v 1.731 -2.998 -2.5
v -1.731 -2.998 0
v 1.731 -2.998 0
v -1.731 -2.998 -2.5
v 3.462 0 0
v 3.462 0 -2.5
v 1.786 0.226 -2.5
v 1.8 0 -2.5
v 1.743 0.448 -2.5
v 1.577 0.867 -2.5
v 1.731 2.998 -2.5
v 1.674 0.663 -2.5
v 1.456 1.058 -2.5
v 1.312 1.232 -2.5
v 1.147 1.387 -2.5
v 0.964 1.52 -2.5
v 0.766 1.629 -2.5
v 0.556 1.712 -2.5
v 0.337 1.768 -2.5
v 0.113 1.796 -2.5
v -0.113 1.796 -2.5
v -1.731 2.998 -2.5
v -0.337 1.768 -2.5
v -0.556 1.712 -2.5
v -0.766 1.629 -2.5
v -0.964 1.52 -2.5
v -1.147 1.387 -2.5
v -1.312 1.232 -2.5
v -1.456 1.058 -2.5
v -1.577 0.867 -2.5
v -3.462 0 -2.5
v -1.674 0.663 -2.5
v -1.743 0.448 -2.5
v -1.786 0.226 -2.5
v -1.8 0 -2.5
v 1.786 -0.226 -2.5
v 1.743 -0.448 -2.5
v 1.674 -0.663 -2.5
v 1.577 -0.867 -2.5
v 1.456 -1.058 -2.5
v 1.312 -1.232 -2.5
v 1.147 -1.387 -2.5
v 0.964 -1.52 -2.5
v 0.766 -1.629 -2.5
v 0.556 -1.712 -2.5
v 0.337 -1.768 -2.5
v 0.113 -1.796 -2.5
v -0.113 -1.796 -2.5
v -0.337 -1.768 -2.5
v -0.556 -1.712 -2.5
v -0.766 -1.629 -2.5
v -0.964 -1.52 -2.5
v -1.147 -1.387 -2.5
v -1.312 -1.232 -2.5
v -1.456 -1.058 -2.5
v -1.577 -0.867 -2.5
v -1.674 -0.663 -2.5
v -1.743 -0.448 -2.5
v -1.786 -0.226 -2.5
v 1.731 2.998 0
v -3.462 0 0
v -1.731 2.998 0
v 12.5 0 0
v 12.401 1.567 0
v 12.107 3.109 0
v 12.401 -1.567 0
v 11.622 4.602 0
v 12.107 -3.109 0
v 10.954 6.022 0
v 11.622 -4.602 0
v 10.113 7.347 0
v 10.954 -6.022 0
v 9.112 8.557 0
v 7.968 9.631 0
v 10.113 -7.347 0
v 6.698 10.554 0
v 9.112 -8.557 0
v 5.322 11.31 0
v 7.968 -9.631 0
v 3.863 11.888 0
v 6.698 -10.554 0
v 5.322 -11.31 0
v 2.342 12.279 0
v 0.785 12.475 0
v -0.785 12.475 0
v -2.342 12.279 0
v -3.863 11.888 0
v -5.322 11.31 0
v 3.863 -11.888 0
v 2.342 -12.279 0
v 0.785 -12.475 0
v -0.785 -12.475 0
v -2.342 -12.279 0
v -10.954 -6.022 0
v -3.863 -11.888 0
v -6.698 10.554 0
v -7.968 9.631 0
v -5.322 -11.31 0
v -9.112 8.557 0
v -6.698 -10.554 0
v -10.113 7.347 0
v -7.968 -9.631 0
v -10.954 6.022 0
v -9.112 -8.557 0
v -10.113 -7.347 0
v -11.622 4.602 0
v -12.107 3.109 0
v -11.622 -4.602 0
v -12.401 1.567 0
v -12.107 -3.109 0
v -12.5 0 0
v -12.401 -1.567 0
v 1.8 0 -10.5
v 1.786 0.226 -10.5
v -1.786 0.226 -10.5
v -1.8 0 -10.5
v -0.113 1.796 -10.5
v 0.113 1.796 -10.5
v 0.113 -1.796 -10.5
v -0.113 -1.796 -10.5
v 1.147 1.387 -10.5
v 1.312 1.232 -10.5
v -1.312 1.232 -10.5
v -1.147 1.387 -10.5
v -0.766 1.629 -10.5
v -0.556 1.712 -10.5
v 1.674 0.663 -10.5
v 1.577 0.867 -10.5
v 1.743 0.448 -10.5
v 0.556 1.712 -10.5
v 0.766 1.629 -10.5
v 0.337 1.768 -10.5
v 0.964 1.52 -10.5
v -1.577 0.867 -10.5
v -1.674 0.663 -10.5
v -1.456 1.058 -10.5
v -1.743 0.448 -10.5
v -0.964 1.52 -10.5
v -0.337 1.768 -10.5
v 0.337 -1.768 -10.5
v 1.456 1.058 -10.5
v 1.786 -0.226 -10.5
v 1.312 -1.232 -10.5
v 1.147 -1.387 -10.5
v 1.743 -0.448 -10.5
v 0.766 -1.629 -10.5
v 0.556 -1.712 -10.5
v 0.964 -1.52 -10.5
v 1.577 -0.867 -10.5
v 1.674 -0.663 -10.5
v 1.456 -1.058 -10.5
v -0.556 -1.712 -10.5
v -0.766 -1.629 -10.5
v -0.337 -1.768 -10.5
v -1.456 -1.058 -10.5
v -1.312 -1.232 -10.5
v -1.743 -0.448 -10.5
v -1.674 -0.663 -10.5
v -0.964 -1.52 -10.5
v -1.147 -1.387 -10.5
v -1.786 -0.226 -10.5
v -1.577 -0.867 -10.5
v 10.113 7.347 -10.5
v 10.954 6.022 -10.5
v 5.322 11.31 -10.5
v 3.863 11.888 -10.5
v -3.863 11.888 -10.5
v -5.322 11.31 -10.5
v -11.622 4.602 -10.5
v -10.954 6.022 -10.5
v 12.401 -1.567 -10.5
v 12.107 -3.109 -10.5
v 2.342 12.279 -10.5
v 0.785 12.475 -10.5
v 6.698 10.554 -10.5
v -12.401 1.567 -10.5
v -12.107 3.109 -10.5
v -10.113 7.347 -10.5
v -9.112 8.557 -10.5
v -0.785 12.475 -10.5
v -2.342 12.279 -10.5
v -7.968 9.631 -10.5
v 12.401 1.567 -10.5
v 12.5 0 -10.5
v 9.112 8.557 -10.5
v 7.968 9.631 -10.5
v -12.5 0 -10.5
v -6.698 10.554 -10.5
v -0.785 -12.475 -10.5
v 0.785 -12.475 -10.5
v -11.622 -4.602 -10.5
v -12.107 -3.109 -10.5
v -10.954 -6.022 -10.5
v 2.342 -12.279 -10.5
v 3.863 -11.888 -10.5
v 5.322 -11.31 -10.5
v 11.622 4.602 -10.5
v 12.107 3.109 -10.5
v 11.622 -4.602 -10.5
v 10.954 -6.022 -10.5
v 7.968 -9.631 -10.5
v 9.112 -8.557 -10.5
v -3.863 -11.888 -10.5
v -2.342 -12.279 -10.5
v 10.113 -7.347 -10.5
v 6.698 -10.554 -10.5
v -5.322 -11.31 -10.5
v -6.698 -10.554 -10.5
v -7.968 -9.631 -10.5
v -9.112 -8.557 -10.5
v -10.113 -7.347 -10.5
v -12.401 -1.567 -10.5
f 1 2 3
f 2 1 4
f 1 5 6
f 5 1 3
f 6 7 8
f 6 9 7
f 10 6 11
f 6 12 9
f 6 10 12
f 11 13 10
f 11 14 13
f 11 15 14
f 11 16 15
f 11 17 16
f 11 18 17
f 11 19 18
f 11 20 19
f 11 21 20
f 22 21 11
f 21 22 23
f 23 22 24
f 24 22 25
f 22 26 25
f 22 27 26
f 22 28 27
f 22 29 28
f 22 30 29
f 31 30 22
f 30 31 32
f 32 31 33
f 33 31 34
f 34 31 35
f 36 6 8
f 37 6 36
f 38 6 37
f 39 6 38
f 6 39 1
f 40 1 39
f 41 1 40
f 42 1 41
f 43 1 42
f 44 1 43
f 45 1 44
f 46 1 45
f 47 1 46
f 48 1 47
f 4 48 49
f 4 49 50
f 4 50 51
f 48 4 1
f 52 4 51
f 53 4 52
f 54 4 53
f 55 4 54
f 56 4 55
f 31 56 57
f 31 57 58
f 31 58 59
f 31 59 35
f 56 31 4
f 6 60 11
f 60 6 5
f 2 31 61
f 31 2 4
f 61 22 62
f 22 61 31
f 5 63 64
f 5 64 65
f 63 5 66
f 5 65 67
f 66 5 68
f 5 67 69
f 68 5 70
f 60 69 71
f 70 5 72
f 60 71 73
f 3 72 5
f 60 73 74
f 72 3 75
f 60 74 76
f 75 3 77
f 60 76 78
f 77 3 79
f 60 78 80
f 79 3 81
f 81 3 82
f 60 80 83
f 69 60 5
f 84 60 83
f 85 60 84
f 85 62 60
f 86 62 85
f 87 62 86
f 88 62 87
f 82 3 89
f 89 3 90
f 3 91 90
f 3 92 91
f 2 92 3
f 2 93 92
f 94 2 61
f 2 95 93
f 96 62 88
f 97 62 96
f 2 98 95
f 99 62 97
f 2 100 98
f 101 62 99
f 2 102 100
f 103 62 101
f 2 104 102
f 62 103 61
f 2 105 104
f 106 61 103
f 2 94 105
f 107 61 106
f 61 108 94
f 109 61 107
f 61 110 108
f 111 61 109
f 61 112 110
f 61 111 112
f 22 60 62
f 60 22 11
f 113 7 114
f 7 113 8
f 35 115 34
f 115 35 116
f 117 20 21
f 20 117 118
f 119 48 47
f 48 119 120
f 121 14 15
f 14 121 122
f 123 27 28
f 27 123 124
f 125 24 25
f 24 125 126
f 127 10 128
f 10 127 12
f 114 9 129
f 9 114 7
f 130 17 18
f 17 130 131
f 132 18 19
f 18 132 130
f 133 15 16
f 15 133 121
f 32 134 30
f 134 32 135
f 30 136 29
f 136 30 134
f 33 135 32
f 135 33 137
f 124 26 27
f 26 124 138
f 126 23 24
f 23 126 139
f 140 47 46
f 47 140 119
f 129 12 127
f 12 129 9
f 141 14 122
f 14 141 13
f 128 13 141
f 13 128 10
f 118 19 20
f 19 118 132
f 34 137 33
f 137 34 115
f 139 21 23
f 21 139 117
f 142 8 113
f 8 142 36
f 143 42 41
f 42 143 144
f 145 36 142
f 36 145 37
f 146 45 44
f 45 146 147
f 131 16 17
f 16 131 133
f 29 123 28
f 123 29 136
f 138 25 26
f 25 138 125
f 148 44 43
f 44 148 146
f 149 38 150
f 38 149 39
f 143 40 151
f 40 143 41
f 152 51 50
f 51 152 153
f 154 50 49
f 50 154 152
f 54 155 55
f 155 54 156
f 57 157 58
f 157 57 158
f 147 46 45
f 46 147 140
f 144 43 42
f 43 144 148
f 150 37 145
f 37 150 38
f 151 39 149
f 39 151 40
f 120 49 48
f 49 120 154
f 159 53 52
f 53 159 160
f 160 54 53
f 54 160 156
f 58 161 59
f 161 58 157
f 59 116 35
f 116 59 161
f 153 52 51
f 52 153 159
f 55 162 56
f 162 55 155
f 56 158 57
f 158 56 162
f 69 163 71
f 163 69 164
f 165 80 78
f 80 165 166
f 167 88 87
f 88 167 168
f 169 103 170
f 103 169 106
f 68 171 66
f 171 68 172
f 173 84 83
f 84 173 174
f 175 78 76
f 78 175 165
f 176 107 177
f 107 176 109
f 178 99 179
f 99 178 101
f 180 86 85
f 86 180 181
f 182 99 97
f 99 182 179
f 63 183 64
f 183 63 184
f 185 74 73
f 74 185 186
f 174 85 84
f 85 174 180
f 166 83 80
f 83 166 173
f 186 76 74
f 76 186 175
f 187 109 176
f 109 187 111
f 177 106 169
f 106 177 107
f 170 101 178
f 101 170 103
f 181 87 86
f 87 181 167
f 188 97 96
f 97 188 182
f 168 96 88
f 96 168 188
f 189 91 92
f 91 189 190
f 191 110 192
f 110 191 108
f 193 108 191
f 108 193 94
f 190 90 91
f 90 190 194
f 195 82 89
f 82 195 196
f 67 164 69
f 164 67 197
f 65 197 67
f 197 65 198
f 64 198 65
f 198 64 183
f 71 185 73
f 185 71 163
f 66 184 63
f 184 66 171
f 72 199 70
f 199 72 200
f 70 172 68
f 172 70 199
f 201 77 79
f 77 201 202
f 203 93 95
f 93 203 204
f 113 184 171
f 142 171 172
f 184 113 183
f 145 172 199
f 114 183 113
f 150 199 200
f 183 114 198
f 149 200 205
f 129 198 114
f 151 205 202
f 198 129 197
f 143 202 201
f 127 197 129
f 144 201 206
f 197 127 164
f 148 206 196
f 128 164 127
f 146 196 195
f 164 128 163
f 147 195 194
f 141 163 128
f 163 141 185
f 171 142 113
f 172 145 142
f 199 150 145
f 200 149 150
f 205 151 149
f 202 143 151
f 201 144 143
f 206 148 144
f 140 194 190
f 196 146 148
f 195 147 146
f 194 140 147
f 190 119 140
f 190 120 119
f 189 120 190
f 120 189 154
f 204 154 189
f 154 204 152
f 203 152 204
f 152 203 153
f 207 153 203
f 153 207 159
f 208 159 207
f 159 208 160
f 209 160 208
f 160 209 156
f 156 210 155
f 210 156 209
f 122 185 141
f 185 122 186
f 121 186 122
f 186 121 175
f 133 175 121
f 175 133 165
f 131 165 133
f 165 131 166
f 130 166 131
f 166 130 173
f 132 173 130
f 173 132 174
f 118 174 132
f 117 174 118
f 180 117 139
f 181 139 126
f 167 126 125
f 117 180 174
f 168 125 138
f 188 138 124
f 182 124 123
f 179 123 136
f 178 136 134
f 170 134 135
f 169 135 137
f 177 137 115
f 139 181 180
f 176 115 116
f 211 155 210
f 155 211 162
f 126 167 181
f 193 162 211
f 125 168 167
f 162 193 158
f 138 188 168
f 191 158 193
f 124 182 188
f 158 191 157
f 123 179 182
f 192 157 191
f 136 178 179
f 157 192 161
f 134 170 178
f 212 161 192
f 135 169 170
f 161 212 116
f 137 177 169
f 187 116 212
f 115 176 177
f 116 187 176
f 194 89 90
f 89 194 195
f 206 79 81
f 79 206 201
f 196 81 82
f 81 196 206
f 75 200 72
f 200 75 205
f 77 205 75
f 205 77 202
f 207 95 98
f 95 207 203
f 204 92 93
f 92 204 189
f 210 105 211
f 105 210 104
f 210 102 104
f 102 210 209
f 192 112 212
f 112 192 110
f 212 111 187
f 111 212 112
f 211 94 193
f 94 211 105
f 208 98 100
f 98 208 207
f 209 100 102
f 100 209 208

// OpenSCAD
$fn = 50;

difference() {
	union() {
		translate(v = [0, 0, -10.5]) {
			cylinder(h = 10.5, r = 12.5);
		}
	}
	union() {
		translate(v = [0, 0, 0]) {
			rotate(a = [0, 0, 0]) {
				difference() {
					union() {
						translate(v = [0, 0, -2.5]) {
							linear_extrude(height = 2.5) {
								polygon(points = [[3.4619999999999997, 0.0], [1.7310000000000003, 2.9981799479017264], [-1.7309999999999992, 2.9981799479017264], [-3.4619999999999997, 4.2397272186481365e-16], [-1.7310000000000014, -2.998179947901726], [1.7309999999999977, -2.9981799479017277]]);
							}
						}
					}
					union();
				}
			}
		}
		#translate(v = [0, 0, -100.0]) {
			cylinder(h = 200, r = 1.8);
		}
	}
}
